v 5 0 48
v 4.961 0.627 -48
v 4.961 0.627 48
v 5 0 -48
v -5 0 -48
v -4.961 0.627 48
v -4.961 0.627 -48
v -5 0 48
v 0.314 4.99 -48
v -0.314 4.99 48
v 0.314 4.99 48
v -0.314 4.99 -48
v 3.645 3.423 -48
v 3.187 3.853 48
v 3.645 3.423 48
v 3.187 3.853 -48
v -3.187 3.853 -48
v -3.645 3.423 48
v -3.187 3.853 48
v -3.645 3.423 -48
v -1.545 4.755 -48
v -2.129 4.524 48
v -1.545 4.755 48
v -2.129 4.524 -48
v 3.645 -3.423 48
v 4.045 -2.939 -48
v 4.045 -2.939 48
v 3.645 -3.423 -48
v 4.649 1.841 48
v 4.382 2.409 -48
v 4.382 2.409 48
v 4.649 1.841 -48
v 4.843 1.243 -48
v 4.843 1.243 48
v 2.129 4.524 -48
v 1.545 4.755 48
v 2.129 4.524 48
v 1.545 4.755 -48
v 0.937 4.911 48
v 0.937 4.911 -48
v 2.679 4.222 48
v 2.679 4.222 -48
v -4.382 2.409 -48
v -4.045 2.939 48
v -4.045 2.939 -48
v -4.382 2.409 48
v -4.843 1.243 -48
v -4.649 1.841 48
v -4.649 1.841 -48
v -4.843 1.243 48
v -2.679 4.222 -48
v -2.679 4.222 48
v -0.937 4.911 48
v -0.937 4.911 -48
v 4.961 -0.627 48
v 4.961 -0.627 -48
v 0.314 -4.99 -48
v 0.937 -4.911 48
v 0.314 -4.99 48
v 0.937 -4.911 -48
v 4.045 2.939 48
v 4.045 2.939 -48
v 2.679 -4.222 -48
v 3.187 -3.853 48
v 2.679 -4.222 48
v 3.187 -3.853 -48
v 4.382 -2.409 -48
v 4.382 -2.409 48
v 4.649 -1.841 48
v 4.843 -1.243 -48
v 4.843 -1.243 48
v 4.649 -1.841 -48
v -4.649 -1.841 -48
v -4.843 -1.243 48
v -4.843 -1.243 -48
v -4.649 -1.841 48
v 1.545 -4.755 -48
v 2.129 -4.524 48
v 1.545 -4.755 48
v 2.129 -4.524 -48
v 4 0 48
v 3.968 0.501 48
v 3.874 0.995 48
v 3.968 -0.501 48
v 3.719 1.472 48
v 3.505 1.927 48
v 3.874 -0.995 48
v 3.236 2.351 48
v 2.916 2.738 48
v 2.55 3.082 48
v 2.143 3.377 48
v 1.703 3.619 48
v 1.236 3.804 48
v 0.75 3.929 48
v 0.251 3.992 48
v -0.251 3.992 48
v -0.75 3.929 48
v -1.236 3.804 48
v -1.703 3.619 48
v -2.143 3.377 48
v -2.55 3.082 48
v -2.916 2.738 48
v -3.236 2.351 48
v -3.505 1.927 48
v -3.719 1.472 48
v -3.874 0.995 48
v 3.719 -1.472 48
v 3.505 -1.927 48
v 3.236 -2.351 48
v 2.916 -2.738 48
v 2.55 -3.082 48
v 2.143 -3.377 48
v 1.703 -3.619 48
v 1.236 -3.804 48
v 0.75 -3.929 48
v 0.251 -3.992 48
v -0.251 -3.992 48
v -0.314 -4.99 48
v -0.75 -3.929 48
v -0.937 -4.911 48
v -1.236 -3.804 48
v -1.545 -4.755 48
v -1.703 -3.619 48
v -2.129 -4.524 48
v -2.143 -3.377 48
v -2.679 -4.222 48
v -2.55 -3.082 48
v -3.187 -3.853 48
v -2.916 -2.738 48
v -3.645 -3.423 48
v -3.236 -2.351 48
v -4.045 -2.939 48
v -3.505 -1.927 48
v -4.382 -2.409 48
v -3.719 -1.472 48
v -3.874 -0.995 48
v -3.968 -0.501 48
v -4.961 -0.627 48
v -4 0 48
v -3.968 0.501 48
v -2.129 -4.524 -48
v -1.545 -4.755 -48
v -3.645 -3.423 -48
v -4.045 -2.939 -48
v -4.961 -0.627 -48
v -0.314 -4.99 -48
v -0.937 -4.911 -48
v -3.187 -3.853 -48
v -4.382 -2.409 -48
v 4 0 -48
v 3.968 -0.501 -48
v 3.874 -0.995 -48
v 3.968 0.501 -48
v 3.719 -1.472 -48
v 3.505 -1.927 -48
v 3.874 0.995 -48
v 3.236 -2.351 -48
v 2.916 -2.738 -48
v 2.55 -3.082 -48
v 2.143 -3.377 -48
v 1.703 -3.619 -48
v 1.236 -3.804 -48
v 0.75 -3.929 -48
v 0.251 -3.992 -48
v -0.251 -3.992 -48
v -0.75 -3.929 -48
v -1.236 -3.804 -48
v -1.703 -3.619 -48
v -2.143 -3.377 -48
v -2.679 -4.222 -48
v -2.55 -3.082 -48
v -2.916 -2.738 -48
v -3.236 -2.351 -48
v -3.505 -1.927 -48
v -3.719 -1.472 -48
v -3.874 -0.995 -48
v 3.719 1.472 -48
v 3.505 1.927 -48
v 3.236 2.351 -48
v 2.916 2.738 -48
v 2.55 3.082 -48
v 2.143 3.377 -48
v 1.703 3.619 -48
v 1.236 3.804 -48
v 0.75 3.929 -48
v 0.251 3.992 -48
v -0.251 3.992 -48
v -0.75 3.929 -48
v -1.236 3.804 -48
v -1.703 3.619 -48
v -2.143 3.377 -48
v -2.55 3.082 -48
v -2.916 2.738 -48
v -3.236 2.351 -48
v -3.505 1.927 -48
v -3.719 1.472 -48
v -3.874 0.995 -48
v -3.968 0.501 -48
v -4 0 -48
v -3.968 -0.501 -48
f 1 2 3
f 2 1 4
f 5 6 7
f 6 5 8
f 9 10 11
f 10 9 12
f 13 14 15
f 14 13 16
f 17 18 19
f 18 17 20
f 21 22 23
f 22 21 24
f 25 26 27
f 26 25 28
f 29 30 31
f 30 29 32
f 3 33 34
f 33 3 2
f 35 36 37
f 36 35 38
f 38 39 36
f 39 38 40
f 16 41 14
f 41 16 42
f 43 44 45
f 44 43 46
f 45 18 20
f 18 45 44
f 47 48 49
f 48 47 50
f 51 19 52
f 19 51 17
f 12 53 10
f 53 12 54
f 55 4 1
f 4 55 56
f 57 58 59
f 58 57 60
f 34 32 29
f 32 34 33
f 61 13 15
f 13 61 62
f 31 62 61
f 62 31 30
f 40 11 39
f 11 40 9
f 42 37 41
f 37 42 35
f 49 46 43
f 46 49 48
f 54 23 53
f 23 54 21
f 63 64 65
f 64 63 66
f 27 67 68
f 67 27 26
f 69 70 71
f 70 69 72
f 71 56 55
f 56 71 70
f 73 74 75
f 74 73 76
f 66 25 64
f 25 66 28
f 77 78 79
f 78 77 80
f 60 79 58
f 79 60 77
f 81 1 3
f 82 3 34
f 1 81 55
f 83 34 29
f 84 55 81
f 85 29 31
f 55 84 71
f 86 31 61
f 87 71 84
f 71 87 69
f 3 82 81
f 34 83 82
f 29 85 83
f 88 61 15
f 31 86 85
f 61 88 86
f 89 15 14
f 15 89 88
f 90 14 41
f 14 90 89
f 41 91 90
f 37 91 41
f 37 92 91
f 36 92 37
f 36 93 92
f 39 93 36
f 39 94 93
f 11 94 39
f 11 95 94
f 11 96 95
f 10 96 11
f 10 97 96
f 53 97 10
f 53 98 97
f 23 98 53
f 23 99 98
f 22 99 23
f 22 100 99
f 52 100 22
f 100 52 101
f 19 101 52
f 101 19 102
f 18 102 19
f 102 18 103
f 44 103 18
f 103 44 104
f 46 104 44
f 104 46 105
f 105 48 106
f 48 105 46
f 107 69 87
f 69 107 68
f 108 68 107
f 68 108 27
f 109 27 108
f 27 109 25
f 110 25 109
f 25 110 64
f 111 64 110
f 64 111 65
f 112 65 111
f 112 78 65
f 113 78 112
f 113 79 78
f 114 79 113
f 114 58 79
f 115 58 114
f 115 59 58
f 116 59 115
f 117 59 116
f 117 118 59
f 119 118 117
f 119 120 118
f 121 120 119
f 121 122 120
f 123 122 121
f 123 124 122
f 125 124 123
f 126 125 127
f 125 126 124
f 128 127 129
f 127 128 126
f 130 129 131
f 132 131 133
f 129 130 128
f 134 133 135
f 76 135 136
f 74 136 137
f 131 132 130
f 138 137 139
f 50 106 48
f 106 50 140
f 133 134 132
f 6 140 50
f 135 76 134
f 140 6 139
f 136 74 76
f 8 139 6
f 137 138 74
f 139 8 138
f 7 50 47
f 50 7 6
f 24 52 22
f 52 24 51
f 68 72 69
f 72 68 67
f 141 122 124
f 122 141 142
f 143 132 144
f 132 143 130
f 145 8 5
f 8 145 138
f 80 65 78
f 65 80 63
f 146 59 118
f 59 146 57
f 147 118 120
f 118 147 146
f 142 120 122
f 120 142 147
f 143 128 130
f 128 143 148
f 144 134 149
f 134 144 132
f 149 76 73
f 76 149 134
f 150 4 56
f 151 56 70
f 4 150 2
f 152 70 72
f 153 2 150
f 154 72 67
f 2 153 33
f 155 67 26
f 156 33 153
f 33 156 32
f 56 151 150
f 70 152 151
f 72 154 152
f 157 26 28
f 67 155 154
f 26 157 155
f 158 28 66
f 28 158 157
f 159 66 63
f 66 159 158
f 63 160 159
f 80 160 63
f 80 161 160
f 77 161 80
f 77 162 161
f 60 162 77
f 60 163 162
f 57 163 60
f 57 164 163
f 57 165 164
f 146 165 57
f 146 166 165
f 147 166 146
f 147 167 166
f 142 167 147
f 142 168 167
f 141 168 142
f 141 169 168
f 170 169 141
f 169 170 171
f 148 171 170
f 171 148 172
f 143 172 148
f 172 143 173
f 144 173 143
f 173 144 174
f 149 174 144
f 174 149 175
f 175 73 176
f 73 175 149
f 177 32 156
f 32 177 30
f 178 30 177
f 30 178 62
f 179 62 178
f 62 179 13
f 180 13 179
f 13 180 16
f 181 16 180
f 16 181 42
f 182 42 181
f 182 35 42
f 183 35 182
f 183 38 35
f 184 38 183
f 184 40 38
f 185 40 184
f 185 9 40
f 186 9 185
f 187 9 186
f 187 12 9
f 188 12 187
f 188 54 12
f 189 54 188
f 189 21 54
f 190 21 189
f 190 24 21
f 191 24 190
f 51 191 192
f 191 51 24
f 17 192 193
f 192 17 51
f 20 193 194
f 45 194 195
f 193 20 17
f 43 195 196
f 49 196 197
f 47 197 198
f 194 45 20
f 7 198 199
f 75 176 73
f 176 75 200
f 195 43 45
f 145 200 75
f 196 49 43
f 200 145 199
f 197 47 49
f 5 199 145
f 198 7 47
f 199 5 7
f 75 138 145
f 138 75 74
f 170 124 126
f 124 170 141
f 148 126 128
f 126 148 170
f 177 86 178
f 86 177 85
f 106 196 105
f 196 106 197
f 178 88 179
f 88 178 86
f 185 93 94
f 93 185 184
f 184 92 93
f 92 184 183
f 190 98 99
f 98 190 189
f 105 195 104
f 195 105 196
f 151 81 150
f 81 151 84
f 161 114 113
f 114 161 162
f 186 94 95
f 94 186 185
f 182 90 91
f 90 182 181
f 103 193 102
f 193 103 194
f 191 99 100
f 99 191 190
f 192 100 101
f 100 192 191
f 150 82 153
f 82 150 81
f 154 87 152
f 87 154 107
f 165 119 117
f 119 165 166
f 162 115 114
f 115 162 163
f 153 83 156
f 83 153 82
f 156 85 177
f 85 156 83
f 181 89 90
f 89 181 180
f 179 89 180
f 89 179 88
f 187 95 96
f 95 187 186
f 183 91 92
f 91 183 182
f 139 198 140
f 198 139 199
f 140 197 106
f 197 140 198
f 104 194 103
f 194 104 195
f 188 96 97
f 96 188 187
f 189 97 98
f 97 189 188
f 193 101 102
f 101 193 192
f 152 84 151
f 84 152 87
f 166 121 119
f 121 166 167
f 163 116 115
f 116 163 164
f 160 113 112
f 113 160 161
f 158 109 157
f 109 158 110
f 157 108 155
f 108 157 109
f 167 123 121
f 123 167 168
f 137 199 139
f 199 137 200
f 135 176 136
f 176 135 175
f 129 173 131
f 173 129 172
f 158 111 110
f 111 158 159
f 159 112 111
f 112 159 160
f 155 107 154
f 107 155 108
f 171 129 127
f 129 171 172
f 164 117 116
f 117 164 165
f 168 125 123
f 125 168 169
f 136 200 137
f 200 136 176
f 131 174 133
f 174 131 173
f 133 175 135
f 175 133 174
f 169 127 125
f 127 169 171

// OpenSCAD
$fn = 50;


difference() {
	union() {
		translate(v = [0, 0, -48.0000000000]) {
			cylinder(h = 96, r = 5.0000000000);
		}
	}
	union() {
		translate(v = [0, 0, -100.0000000000]) {
			cylinder(h = 200, r = 4.0000000000);
		}
	}
}
